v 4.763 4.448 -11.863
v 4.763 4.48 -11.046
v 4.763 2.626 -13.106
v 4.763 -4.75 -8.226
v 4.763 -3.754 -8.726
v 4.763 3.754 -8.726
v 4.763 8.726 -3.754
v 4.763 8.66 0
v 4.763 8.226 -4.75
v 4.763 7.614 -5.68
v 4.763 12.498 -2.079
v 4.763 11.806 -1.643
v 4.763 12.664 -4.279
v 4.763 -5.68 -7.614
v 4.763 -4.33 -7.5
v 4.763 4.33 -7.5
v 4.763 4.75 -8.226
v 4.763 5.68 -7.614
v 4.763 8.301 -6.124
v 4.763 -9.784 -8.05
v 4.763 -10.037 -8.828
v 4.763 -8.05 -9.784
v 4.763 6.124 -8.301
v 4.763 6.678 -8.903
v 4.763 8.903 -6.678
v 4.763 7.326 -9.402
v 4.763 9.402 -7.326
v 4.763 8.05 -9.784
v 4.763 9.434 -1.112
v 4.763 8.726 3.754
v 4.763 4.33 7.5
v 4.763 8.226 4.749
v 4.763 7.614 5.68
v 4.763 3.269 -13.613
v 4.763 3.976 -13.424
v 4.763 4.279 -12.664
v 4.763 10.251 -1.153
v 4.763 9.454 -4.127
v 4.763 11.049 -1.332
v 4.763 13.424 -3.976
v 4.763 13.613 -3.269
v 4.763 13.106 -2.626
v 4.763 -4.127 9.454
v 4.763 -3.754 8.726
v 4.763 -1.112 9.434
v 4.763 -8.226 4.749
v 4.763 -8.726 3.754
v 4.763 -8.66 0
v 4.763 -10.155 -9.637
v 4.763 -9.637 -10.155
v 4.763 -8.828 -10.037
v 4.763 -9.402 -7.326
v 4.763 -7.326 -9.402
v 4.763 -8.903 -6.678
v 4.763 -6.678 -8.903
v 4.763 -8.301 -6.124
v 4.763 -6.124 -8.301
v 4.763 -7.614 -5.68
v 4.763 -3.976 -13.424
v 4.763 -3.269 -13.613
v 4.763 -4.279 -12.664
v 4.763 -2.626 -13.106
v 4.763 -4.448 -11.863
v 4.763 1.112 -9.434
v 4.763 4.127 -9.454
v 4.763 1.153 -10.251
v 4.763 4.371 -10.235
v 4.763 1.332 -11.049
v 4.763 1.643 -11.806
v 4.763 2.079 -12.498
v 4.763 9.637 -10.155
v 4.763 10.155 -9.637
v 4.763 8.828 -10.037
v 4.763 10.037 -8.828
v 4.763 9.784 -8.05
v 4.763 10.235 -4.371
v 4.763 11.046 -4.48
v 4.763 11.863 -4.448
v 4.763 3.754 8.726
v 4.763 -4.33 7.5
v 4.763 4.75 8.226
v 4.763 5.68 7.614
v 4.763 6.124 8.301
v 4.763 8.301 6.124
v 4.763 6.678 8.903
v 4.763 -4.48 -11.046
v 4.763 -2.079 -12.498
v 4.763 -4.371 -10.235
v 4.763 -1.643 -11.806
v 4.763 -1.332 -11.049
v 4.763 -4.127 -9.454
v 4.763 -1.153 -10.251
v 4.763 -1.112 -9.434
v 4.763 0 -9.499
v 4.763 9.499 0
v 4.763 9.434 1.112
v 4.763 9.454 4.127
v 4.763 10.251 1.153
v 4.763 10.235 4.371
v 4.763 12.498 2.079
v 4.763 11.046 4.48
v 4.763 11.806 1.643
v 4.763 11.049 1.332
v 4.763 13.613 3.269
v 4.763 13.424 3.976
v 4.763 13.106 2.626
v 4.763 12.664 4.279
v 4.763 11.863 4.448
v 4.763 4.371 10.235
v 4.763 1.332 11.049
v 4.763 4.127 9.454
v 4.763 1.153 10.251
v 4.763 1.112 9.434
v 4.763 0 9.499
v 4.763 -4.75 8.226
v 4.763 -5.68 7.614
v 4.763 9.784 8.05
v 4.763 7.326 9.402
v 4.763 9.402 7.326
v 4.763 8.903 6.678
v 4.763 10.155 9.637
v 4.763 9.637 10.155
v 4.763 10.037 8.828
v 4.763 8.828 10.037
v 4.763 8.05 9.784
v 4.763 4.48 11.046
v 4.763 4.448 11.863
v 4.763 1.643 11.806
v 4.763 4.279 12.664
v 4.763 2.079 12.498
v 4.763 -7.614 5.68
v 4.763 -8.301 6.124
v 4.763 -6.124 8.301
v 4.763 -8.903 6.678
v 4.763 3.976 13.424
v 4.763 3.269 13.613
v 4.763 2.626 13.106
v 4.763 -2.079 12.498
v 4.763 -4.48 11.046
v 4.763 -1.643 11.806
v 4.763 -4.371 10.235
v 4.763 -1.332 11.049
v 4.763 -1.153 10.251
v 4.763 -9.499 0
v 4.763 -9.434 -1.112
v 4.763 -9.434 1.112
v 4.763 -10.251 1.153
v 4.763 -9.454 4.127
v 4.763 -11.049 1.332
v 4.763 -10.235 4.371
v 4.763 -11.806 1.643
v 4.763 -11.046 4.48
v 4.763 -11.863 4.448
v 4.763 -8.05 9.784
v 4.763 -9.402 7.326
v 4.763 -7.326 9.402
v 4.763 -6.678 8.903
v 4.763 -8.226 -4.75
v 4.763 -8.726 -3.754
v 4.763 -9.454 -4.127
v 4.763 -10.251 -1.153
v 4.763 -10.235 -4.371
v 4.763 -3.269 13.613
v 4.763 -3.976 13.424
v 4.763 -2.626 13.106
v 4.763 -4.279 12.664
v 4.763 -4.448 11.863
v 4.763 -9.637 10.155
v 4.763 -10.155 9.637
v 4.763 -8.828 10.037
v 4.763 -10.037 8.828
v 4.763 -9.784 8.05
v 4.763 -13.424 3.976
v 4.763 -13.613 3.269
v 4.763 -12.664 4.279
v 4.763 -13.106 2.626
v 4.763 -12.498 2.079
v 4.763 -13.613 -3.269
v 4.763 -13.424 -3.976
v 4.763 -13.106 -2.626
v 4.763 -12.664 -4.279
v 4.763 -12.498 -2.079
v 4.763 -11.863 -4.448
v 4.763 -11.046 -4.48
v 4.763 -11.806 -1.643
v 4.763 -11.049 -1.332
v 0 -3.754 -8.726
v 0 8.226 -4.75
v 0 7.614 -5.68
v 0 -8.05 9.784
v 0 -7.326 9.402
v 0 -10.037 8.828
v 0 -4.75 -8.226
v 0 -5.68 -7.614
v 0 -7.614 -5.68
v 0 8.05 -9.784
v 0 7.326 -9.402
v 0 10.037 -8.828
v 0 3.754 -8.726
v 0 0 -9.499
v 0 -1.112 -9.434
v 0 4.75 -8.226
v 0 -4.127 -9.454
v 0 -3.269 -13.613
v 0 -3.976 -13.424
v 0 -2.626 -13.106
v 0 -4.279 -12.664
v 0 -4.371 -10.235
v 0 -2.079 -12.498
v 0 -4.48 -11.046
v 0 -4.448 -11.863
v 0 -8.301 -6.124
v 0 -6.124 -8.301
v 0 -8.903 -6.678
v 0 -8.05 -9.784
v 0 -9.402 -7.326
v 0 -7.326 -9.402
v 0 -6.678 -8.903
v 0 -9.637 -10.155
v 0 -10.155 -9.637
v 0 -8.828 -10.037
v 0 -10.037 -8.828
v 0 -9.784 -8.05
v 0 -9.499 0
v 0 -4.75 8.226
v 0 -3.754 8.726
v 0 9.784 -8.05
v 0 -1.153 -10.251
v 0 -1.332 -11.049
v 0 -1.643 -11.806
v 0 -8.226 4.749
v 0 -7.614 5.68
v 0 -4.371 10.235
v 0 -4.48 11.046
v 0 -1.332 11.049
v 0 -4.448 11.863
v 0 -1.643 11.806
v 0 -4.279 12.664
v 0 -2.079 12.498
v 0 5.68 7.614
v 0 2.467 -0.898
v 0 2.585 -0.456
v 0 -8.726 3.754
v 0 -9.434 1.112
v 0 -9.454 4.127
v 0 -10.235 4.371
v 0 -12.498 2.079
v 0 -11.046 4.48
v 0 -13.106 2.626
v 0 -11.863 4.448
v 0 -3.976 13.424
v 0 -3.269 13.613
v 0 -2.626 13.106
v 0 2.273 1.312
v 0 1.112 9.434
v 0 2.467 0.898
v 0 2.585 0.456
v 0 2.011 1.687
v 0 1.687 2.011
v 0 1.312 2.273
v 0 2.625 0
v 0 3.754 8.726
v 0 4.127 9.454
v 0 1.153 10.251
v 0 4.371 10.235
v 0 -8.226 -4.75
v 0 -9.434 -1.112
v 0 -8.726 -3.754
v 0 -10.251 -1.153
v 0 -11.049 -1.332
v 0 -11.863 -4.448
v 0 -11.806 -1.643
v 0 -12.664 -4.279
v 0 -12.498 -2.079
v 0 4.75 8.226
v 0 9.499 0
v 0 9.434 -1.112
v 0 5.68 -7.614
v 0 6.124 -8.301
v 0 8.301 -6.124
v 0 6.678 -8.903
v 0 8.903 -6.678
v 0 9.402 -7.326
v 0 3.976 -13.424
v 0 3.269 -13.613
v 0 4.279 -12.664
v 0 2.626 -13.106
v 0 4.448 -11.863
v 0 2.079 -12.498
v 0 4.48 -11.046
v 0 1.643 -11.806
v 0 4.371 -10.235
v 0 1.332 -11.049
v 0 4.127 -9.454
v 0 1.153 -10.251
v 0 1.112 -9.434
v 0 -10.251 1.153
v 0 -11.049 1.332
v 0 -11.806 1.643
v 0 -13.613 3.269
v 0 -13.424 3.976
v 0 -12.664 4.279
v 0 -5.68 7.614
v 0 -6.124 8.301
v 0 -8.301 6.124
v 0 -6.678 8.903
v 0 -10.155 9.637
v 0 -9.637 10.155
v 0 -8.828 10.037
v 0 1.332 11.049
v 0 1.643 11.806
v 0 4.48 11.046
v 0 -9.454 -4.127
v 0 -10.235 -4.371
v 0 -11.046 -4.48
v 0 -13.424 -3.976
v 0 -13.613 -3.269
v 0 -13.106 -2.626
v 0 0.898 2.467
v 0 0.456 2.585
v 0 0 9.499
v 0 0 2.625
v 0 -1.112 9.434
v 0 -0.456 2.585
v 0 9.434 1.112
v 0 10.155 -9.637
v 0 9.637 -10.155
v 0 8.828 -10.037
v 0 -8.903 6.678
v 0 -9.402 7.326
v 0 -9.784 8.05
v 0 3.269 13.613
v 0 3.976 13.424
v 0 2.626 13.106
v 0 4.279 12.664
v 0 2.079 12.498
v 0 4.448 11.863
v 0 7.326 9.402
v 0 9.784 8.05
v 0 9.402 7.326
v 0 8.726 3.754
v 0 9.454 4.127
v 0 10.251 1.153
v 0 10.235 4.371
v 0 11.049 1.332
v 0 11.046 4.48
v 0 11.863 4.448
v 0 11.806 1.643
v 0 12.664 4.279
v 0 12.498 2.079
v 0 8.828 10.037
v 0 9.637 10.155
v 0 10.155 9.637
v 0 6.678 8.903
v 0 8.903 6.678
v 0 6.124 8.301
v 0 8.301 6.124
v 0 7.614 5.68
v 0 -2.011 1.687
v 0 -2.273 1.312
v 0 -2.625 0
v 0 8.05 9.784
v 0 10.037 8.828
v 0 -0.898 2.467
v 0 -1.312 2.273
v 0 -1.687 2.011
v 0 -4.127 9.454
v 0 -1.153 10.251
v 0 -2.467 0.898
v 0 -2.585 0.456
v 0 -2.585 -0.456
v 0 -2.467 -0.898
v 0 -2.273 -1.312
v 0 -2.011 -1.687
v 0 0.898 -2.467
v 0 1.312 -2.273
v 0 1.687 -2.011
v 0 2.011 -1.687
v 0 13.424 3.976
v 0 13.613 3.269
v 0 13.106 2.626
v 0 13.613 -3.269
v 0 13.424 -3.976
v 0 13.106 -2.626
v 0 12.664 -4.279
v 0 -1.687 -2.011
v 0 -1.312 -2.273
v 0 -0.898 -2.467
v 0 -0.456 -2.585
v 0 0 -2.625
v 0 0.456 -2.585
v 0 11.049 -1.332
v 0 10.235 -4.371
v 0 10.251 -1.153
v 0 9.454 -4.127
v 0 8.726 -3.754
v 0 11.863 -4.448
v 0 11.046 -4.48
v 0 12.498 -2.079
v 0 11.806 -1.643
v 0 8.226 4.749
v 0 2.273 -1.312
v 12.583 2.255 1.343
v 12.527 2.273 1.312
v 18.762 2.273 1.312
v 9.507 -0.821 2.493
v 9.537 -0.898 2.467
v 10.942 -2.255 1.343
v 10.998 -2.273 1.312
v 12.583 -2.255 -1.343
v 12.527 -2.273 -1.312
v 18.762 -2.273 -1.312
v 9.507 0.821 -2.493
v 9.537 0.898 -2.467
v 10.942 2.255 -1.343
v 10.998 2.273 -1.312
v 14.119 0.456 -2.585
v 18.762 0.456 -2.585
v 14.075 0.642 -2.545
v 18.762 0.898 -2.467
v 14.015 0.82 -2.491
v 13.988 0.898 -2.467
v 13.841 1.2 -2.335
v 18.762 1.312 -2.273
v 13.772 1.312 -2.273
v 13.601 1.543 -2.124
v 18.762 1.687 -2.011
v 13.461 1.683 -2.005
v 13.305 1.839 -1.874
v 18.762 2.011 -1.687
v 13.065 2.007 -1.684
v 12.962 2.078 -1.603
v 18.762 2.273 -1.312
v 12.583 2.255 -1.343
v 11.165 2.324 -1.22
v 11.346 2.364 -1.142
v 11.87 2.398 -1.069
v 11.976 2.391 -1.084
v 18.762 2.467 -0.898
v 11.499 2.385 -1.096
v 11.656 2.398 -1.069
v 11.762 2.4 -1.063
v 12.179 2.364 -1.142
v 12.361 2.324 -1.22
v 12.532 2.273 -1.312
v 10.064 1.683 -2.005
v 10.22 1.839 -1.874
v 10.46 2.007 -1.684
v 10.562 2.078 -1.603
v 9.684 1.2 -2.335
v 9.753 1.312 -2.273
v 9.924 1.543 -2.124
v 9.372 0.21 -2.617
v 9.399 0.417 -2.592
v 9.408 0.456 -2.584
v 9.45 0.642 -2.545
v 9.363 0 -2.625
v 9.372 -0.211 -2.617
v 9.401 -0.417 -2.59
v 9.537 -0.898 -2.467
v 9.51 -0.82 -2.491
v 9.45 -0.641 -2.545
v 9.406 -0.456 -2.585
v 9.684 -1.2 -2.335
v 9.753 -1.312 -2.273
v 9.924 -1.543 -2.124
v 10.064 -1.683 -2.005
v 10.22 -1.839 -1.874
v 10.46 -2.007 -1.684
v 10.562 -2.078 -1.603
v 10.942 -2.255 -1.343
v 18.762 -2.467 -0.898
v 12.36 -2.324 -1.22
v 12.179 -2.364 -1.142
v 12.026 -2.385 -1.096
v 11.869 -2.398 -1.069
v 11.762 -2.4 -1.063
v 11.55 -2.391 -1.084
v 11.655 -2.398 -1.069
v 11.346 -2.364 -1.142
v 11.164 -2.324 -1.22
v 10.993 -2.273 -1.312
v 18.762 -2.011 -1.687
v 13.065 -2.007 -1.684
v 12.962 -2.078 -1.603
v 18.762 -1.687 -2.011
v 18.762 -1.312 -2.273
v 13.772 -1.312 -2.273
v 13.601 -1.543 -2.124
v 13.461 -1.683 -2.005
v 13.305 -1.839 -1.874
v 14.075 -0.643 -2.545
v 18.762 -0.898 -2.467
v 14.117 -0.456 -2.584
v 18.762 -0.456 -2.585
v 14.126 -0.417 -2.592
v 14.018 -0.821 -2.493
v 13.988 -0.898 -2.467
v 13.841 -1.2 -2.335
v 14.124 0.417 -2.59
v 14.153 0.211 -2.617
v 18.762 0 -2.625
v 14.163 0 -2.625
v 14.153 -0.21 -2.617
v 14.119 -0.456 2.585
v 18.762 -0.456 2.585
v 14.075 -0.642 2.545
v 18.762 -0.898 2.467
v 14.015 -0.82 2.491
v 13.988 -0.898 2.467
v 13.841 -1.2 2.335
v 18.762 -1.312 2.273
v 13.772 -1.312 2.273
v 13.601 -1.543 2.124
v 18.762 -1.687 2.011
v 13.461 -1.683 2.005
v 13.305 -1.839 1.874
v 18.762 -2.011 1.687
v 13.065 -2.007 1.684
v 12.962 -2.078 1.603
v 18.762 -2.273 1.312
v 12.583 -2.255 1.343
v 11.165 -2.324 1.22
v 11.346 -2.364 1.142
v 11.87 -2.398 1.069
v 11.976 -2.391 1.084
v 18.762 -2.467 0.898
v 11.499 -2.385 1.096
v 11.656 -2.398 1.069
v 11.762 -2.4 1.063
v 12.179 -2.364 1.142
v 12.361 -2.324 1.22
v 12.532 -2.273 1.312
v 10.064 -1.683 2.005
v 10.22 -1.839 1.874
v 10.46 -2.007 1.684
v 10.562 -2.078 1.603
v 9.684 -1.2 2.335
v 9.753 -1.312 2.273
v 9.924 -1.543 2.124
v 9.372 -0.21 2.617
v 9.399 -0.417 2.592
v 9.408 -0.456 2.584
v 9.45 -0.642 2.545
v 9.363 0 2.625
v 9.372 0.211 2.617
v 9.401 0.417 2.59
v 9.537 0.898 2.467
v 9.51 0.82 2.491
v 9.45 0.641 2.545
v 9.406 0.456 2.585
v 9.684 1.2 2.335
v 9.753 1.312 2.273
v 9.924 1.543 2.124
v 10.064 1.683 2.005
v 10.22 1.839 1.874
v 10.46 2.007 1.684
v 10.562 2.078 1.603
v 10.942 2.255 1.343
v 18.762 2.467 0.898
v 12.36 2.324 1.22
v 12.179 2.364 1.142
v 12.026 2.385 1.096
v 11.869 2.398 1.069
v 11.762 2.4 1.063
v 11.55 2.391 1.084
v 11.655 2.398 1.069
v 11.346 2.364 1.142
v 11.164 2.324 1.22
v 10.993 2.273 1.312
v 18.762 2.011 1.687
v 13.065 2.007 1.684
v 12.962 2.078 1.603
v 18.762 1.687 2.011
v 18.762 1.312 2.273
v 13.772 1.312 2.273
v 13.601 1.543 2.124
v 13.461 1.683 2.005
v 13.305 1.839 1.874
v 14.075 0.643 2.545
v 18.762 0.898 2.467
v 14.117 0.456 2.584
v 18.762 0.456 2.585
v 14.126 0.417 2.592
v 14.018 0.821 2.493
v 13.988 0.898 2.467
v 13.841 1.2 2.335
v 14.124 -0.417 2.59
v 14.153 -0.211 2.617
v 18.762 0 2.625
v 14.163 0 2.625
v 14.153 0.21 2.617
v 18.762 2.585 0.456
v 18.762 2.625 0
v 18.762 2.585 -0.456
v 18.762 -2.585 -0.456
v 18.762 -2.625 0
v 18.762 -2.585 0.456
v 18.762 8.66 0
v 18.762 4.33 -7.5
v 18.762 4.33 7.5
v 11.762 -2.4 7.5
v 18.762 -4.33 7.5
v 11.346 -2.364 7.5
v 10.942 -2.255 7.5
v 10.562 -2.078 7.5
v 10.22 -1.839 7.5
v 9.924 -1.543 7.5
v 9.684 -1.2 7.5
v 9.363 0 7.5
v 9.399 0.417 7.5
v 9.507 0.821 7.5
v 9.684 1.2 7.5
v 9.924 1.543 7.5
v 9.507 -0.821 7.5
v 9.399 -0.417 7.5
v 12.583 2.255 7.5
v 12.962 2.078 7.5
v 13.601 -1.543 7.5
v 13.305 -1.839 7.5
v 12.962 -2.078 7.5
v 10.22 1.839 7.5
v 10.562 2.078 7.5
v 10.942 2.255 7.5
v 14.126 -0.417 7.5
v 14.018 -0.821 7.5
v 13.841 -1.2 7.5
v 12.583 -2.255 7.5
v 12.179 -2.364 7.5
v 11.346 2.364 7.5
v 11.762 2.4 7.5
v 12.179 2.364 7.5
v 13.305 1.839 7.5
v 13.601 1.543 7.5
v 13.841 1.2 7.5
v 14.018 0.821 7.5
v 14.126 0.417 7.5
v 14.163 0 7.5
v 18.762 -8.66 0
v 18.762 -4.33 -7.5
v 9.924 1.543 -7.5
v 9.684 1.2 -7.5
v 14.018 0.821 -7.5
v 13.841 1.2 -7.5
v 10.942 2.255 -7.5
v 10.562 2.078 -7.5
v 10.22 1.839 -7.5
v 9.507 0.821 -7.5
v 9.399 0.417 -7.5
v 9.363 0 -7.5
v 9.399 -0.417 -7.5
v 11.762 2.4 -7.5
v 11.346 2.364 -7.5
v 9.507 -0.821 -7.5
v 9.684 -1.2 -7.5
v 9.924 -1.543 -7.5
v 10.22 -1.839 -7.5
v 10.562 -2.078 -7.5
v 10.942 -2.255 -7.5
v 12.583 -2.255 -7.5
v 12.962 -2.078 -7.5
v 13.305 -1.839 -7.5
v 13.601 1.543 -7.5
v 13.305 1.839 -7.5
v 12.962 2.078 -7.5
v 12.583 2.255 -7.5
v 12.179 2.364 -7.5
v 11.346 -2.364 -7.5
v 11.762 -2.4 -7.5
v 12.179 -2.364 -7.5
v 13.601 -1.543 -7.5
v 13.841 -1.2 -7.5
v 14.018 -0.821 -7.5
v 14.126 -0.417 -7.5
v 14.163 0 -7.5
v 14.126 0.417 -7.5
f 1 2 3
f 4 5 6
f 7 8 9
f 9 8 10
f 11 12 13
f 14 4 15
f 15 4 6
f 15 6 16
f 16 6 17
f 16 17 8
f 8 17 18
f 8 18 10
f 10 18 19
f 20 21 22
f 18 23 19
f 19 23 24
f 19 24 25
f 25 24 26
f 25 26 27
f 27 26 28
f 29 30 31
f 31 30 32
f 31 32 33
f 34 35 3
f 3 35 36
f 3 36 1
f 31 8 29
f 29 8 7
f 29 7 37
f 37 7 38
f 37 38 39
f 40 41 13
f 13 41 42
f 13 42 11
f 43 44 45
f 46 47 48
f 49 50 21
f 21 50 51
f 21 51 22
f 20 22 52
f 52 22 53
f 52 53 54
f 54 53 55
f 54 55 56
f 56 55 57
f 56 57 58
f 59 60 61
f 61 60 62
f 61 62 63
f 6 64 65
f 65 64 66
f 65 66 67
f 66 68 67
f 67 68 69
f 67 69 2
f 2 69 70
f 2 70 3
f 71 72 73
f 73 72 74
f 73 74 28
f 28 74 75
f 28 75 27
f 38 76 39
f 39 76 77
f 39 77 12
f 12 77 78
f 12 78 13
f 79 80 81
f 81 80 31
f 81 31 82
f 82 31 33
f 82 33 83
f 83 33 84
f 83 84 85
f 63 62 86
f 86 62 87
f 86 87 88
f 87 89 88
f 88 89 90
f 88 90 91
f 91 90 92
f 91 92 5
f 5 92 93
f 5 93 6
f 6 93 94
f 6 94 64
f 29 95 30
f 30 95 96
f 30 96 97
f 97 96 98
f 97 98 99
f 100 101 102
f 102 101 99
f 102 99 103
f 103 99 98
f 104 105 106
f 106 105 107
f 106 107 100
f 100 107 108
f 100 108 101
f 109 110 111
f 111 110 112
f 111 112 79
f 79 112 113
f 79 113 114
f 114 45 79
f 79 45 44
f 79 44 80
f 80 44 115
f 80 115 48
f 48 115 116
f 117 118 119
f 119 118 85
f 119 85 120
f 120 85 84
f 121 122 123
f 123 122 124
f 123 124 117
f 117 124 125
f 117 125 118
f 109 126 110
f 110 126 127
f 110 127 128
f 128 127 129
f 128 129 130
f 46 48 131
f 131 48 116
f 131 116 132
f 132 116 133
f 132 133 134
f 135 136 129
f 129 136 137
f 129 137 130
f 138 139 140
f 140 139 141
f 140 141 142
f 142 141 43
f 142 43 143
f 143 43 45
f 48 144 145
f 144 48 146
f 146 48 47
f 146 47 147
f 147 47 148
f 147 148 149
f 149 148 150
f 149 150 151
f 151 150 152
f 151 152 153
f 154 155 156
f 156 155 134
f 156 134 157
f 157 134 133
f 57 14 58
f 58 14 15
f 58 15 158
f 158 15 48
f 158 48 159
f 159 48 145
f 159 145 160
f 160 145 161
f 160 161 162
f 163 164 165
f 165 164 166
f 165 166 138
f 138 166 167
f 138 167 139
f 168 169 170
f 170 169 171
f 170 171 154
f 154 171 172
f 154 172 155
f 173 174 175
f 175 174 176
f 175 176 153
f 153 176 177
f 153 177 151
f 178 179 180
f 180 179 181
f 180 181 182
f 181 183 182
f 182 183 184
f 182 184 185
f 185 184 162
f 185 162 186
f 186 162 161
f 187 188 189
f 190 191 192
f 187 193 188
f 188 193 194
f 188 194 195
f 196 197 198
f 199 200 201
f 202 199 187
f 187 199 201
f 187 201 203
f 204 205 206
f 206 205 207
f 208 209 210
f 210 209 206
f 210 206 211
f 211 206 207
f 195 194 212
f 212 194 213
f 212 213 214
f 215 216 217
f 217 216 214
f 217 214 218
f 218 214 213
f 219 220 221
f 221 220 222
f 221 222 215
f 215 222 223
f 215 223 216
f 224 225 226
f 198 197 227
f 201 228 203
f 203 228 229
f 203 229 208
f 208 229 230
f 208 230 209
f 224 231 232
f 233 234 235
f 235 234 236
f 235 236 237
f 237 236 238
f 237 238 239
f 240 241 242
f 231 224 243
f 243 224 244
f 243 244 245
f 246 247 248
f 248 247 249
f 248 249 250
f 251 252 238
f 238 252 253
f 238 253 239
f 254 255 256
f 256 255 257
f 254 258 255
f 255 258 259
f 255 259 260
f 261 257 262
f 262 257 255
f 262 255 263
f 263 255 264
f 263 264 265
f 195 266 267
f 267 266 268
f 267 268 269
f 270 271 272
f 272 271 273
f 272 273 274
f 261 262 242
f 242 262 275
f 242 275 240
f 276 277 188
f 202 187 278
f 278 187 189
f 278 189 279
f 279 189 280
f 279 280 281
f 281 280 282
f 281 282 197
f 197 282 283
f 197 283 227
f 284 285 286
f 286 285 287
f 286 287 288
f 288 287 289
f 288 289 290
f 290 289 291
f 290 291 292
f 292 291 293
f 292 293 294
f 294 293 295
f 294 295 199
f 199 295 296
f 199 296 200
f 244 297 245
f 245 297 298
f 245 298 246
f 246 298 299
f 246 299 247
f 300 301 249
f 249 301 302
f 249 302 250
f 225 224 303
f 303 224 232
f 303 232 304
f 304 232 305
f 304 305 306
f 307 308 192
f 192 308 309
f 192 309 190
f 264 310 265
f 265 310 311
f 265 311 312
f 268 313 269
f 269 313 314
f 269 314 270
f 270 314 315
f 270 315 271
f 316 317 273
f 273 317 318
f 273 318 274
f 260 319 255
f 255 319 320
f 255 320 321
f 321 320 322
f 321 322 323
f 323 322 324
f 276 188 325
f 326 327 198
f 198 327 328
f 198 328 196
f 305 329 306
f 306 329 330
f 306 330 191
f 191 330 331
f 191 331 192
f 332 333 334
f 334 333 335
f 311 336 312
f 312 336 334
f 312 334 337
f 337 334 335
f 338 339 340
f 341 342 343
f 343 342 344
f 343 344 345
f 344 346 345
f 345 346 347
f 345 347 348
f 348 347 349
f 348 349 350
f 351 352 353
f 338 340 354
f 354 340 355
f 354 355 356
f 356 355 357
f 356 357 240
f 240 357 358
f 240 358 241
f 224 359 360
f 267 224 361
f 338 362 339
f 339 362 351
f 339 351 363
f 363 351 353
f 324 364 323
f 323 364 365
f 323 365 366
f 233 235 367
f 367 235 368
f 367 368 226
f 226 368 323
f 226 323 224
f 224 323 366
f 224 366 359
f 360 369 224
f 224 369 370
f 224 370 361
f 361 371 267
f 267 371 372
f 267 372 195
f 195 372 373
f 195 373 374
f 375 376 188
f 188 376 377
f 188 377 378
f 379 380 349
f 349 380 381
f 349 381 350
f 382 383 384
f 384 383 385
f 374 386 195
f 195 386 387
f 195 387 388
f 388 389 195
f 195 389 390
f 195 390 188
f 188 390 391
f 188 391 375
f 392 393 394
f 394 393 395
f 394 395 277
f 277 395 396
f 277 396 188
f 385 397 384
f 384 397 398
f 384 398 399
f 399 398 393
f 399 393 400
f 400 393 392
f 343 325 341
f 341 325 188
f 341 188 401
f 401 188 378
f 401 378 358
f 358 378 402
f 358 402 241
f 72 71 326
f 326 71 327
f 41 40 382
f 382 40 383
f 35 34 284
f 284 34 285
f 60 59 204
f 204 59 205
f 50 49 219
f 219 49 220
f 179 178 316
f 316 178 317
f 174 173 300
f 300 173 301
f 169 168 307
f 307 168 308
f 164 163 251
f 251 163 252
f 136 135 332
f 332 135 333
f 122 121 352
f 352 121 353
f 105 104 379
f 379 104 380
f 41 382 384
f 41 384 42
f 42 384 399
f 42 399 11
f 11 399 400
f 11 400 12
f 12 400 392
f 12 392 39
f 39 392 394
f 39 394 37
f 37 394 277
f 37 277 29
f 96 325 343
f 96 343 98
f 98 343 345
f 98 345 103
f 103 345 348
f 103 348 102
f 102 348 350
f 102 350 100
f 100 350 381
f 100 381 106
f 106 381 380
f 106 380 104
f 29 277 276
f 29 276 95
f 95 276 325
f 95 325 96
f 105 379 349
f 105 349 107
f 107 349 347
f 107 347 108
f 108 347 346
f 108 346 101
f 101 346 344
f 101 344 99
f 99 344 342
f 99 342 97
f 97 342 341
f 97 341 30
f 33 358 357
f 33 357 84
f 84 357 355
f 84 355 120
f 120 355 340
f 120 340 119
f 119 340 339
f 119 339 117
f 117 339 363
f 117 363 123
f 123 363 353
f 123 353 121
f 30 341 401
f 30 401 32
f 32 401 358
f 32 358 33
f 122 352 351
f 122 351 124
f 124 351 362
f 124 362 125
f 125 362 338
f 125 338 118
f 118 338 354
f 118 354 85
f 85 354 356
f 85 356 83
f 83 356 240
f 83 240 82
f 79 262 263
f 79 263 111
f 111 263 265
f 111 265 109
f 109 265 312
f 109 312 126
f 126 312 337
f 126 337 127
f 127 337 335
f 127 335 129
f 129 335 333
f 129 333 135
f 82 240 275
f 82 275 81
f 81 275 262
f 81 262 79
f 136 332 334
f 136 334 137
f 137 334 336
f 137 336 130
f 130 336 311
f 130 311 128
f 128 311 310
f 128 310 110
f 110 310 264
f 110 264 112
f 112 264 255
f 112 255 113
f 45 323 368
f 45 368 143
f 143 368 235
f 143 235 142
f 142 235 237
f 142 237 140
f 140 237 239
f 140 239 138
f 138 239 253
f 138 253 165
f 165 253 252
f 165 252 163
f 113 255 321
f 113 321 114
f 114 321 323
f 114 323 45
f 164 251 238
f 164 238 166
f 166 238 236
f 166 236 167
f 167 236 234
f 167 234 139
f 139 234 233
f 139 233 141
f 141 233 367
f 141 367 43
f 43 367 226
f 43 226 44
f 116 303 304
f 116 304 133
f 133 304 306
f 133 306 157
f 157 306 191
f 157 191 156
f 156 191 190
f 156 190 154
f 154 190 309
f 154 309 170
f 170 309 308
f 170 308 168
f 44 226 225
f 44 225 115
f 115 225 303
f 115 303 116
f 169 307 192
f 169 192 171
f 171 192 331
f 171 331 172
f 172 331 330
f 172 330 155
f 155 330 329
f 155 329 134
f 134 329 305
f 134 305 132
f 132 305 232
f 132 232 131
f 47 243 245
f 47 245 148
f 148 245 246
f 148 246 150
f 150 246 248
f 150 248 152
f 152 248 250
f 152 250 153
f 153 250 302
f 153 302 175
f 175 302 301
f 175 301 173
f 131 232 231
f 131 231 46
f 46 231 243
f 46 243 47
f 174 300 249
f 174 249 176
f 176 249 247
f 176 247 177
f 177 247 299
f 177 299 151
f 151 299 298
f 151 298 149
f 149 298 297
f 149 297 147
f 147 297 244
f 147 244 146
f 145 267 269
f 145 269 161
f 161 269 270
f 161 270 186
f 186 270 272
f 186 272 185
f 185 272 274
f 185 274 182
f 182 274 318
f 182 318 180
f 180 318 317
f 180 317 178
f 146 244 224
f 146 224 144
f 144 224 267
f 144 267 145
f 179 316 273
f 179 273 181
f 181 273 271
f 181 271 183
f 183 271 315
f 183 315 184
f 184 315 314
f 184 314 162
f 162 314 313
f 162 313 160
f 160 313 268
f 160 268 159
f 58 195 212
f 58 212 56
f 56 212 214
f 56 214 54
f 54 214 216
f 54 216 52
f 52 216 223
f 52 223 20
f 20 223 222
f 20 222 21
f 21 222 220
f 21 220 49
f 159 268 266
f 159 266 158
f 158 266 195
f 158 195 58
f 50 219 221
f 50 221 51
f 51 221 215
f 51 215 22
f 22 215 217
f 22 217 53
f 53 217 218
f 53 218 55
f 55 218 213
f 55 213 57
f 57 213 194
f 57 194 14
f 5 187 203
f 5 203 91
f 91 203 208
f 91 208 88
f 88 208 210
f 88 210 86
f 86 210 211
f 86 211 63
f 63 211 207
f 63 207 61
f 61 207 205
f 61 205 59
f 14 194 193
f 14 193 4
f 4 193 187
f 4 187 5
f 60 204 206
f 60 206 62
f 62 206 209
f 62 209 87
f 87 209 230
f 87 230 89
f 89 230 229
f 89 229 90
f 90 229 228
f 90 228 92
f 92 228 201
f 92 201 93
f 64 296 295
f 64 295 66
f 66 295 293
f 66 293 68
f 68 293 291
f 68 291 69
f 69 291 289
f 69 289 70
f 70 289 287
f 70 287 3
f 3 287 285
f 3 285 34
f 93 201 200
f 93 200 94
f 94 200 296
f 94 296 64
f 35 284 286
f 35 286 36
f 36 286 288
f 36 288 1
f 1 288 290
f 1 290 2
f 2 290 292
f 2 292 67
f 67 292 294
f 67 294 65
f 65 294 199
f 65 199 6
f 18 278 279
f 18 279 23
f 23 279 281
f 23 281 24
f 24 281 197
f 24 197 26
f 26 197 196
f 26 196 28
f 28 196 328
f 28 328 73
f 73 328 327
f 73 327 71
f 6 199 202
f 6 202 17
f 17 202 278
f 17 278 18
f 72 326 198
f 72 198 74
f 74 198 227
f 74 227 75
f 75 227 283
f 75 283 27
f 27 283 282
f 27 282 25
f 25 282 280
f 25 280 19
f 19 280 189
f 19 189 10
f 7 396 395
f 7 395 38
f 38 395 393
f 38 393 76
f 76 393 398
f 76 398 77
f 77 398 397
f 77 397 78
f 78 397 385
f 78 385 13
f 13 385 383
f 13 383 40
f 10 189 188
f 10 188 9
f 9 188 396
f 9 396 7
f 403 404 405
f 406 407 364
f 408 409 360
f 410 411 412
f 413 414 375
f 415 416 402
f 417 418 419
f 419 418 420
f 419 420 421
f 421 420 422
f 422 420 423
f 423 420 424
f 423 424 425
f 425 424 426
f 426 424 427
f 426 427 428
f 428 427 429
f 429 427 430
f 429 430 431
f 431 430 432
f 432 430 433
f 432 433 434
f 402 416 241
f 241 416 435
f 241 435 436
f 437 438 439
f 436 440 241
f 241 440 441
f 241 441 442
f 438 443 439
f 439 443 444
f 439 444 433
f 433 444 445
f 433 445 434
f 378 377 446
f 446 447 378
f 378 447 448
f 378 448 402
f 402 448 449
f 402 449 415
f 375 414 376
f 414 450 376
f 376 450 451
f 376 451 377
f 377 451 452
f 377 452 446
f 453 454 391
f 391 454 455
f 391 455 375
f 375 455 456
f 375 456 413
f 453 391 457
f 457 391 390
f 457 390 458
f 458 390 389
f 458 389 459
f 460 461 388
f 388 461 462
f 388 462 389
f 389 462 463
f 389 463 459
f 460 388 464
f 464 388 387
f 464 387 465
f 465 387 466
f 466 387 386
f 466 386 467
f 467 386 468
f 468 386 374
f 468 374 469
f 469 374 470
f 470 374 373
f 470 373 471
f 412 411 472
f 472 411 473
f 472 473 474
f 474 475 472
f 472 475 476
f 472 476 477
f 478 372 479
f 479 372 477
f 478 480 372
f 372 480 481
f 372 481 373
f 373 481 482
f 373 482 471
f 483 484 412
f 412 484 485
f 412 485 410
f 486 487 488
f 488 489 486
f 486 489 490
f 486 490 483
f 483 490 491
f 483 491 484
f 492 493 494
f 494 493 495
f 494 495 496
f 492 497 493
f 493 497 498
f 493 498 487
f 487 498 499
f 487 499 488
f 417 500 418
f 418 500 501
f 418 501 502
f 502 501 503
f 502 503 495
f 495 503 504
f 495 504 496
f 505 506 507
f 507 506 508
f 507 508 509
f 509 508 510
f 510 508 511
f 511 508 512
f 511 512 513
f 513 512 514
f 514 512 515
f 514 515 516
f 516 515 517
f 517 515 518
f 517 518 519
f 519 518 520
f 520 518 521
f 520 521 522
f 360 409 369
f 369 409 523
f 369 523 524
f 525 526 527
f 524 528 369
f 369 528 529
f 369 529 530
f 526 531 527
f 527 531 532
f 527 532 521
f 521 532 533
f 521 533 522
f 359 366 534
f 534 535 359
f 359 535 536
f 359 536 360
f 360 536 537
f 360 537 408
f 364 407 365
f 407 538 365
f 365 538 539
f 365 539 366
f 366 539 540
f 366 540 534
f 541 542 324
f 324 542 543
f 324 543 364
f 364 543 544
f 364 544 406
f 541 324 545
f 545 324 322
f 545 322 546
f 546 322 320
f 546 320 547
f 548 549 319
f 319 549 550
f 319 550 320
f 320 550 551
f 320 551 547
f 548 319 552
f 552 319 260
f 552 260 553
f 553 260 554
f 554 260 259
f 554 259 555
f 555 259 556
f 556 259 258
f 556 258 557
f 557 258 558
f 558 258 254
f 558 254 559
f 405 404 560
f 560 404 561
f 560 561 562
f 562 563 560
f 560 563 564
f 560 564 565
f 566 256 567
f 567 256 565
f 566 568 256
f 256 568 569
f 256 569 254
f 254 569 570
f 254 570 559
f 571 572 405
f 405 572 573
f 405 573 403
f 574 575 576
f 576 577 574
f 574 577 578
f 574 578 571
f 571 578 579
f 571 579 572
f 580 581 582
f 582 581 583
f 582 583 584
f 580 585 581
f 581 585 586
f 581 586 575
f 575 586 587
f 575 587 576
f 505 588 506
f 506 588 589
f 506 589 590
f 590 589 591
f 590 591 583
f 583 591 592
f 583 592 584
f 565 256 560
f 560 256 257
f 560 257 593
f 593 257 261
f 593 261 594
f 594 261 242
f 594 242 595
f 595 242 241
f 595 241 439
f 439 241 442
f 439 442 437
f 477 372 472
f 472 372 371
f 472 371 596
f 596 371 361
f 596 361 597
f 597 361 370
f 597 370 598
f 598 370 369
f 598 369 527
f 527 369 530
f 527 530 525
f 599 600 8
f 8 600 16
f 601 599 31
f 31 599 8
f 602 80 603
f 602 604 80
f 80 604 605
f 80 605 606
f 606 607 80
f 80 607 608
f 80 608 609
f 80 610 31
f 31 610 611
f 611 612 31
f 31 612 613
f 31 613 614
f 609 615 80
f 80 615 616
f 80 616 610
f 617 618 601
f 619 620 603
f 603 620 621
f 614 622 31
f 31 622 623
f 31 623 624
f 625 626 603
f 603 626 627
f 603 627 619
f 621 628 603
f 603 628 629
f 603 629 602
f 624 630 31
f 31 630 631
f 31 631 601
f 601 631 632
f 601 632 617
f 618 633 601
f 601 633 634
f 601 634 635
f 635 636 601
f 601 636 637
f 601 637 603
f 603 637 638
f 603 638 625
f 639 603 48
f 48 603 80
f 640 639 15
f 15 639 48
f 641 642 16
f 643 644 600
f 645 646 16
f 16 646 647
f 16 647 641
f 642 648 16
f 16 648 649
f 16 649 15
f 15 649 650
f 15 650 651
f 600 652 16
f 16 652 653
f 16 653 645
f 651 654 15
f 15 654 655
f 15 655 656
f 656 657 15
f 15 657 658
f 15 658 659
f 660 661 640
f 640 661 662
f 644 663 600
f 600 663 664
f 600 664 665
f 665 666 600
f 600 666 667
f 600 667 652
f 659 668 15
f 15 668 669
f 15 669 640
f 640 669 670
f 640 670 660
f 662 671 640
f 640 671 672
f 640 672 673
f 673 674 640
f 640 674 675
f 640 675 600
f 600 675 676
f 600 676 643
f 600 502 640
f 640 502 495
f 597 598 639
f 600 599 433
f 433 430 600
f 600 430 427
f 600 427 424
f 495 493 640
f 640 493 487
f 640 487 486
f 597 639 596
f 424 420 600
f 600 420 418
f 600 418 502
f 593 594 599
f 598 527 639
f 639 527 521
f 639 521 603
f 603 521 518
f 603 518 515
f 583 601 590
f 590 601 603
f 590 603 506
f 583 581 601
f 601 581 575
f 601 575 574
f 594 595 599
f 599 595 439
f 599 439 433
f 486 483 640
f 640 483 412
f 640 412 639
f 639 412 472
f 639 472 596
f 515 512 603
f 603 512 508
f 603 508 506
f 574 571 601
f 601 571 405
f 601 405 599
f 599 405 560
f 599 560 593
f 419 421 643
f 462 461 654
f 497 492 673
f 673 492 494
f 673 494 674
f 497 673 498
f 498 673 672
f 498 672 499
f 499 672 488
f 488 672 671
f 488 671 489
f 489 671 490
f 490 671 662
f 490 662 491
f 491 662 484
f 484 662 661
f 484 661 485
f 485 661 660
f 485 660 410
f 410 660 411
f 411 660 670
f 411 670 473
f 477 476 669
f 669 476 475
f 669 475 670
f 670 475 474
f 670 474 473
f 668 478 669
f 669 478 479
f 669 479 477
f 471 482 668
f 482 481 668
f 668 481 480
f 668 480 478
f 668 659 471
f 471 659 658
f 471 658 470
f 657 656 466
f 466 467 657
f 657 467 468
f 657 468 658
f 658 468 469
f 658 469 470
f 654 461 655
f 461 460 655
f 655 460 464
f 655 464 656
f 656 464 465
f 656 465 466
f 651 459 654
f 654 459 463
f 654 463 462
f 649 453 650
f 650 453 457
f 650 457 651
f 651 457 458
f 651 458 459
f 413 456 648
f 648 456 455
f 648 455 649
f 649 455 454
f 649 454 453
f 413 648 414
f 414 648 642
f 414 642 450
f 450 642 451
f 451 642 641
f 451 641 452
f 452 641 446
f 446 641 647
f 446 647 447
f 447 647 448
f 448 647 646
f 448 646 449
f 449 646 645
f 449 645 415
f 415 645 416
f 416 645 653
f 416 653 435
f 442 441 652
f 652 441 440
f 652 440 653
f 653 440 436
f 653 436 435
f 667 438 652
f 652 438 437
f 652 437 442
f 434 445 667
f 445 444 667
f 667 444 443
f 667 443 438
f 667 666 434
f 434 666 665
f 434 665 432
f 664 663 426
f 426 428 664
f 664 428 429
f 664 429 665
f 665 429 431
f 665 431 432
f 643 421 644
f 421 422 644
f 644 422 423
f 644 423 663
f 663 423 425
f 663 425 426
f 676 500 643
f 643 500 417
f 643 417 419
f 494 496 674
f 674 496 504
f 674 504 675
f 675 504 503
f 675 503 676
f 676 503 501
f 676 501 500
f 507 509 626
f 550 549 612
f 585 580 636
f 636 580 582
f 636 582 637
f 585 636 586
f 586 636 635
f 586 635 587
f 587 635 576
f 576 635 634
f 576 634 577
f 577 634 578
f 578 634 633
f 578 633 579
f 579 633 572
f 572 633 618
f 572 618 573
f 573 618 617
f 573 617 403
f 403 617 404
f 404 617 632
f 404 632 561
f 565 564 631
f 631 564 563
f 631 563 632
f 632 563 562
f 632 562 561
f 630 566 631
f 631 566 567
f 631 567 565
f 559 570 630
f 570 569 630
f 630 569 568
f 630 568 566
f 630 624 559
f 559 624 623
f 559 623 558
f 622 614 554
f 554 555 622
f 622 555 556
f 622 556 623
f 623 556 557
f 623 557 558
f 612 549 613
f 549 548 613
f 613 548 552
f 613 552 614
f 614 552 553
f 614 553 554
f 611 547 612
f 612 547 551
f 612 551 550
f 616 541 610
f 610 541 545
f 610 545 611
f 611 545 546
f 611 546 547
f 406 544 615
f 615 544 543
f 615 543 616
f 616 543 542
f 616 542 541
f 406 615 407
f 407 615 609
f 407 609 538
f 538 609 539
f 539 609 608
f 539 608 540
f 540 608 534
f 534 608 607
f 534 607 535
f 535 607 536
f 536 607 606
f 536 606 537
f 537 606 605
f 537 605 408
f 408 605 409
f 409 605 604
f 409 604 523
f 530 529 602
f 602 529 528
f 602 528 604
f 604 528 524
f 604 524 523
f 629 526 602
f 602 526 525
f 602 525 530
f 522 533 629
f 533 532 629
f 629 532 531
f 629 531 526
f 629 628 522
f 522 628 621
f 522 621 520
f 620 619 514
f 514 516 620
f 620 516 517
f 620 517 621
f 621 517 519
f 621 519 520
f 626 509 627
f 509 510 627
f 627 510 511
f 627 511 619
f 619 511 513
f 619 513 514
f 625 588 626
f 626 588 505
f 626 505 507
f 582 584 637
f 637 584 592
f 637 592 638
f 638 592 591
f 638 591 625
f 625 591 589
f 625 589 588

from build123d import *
from build123d.topology import SkipClean

# Parameters (mm, degrees)
BASPROSKE_W         = 4.7625
BASPROSKE_H         = 14
TOOTHCUT_DEPTH      = 21.36372771
TEETHCUTS_COUNT     = 12
TEETHCUTS_ANGLE     = 330
BORSKE_R            = 2.625
BORE_DEPTH          = 50.0000508
BOSS_EXTRUDE1_DEPTH = 13.99999994
SKETCH2_R           = 2.625
CUT_EXTRUDE1_DEPTH  = 27.882327142
SKETCH3_R           = 2.4
CUT_EXTRUDE2_DEPTH  = 32.354499992


with BuildPart() as part:
    # BasProSke → Base-Revolve (revolve)
    with BuildSketch(Plane(origin=(0, 0, 0), x_dir=(1, 0, 0), z_dir=(0, 1, 0)), mode=Mode.PRIVATE) as base_revolve_sk:
        with Locations((2.38125, 7)):
            Rectangle(BASPROSKE_W, BASPROSKE_H)
    revolve(base_revolve_sk.sketch.rotate(Axis((-10, 0, 0), (1, 0, 0)), 180), axis=Axis((-10, 0, 0), (1, 0, 0)))

    # TooCutSke → ToothCut (cut, through all)
    with BuildSketch(Plane(origin=(0, 0, 0), x_dir=(0, 0, -1), z_dir=(1, 0, 0))):
        with BuildLine():
            ThreePointArc((1.111908866, 9.433698091), (0, 9.499), (-1.111908866, 9.433698091))
            ThreePointArc((-1.111908866, 9.433698091), (-1.651516138, 11.821129337), (-3.298149691, 13.632096456))
            ThreePointArc((-3.298149691, 13.632096456), (0, 14.0254), (3.298149691, 13.632096456))
            ThreePointArc((3.298149691, 13.632096456), (1.651516138, 11.821129337), (1.111908866, 9.433698091))
        make_face()
    toothcut = extrude(amount=TOOTHCUT_DEPTH, mode=Mode.SUBTRACT)

    # TeethCuts: ToothCut ×12 about axis
    teethcuts_axis = Axis((-10, 0, 0), (1, 0, 0))
    for i in range(1, TEETHCUTS_COUNT):
        add(toothcut.rotate(teethcuts_axis, i * TEETHCUTS_ANGLE / (TEETHCUTS_COUNT - 1)), mode=Mode.SUBTRACT)

    # BorSke → Bore (cut, symmetric)
    with BuildSketch(Plane(origin=(0, 0, 0), x_dir=(0, 0, -1), z_dir=(1, 0, 0))):
        with Locations(Location((0, 0, 0), (0, 0, 180))):
            Circle(BORSKE_R)
    extrude(amount=BORE_DEPTH, both=True, mode=Mode.SUBTRACT)

    # Sketch1 → Boss-Extrude1 (add)
    with BuildSketch(Plane(origin=(4.7625, 0, 0), x_dir=(0, 0, -1), z_dir=(1, 0, 0))):
        Polygon((0, 8.660254038), (-7.5, 4.330127019), (-7.5, -4.330127019), (0, -8.660254038), (7.5, -4.330127019), (7.5, 4.330127019), align=None)
    extrude(amount=BOSS_EXTRUDE1_DEPTH)

    # Sketch2 → Cut-Extrude1 (cut, through all)
    with BuildSketch(Plane(origin=(18.76249994, 0, 0), x_dir=(0, 0, -1), z_dir=(1, 0, 0))):
        Circle(SKETCH2_R)
    extrude(amount=-CUT_EXTRUDE1_DEPTH, mode=Mode.SUBTRACT)

    # Sketch3 → Cut-Extrude2 (cut, through all)
    with SkipClean():  # the faces are left unmerged after this step: merging them gives an invalid solid
        with BuildSketch(Plane.XY.offset(7.5)):
            with Locations((11.76249997, 0)):
                Circle(SKETCH3_R)
        extrude(amount=-CUT_EXTRUDE2_DEPTH, mode=Mode.SUBTRACT)


solid = part.part
